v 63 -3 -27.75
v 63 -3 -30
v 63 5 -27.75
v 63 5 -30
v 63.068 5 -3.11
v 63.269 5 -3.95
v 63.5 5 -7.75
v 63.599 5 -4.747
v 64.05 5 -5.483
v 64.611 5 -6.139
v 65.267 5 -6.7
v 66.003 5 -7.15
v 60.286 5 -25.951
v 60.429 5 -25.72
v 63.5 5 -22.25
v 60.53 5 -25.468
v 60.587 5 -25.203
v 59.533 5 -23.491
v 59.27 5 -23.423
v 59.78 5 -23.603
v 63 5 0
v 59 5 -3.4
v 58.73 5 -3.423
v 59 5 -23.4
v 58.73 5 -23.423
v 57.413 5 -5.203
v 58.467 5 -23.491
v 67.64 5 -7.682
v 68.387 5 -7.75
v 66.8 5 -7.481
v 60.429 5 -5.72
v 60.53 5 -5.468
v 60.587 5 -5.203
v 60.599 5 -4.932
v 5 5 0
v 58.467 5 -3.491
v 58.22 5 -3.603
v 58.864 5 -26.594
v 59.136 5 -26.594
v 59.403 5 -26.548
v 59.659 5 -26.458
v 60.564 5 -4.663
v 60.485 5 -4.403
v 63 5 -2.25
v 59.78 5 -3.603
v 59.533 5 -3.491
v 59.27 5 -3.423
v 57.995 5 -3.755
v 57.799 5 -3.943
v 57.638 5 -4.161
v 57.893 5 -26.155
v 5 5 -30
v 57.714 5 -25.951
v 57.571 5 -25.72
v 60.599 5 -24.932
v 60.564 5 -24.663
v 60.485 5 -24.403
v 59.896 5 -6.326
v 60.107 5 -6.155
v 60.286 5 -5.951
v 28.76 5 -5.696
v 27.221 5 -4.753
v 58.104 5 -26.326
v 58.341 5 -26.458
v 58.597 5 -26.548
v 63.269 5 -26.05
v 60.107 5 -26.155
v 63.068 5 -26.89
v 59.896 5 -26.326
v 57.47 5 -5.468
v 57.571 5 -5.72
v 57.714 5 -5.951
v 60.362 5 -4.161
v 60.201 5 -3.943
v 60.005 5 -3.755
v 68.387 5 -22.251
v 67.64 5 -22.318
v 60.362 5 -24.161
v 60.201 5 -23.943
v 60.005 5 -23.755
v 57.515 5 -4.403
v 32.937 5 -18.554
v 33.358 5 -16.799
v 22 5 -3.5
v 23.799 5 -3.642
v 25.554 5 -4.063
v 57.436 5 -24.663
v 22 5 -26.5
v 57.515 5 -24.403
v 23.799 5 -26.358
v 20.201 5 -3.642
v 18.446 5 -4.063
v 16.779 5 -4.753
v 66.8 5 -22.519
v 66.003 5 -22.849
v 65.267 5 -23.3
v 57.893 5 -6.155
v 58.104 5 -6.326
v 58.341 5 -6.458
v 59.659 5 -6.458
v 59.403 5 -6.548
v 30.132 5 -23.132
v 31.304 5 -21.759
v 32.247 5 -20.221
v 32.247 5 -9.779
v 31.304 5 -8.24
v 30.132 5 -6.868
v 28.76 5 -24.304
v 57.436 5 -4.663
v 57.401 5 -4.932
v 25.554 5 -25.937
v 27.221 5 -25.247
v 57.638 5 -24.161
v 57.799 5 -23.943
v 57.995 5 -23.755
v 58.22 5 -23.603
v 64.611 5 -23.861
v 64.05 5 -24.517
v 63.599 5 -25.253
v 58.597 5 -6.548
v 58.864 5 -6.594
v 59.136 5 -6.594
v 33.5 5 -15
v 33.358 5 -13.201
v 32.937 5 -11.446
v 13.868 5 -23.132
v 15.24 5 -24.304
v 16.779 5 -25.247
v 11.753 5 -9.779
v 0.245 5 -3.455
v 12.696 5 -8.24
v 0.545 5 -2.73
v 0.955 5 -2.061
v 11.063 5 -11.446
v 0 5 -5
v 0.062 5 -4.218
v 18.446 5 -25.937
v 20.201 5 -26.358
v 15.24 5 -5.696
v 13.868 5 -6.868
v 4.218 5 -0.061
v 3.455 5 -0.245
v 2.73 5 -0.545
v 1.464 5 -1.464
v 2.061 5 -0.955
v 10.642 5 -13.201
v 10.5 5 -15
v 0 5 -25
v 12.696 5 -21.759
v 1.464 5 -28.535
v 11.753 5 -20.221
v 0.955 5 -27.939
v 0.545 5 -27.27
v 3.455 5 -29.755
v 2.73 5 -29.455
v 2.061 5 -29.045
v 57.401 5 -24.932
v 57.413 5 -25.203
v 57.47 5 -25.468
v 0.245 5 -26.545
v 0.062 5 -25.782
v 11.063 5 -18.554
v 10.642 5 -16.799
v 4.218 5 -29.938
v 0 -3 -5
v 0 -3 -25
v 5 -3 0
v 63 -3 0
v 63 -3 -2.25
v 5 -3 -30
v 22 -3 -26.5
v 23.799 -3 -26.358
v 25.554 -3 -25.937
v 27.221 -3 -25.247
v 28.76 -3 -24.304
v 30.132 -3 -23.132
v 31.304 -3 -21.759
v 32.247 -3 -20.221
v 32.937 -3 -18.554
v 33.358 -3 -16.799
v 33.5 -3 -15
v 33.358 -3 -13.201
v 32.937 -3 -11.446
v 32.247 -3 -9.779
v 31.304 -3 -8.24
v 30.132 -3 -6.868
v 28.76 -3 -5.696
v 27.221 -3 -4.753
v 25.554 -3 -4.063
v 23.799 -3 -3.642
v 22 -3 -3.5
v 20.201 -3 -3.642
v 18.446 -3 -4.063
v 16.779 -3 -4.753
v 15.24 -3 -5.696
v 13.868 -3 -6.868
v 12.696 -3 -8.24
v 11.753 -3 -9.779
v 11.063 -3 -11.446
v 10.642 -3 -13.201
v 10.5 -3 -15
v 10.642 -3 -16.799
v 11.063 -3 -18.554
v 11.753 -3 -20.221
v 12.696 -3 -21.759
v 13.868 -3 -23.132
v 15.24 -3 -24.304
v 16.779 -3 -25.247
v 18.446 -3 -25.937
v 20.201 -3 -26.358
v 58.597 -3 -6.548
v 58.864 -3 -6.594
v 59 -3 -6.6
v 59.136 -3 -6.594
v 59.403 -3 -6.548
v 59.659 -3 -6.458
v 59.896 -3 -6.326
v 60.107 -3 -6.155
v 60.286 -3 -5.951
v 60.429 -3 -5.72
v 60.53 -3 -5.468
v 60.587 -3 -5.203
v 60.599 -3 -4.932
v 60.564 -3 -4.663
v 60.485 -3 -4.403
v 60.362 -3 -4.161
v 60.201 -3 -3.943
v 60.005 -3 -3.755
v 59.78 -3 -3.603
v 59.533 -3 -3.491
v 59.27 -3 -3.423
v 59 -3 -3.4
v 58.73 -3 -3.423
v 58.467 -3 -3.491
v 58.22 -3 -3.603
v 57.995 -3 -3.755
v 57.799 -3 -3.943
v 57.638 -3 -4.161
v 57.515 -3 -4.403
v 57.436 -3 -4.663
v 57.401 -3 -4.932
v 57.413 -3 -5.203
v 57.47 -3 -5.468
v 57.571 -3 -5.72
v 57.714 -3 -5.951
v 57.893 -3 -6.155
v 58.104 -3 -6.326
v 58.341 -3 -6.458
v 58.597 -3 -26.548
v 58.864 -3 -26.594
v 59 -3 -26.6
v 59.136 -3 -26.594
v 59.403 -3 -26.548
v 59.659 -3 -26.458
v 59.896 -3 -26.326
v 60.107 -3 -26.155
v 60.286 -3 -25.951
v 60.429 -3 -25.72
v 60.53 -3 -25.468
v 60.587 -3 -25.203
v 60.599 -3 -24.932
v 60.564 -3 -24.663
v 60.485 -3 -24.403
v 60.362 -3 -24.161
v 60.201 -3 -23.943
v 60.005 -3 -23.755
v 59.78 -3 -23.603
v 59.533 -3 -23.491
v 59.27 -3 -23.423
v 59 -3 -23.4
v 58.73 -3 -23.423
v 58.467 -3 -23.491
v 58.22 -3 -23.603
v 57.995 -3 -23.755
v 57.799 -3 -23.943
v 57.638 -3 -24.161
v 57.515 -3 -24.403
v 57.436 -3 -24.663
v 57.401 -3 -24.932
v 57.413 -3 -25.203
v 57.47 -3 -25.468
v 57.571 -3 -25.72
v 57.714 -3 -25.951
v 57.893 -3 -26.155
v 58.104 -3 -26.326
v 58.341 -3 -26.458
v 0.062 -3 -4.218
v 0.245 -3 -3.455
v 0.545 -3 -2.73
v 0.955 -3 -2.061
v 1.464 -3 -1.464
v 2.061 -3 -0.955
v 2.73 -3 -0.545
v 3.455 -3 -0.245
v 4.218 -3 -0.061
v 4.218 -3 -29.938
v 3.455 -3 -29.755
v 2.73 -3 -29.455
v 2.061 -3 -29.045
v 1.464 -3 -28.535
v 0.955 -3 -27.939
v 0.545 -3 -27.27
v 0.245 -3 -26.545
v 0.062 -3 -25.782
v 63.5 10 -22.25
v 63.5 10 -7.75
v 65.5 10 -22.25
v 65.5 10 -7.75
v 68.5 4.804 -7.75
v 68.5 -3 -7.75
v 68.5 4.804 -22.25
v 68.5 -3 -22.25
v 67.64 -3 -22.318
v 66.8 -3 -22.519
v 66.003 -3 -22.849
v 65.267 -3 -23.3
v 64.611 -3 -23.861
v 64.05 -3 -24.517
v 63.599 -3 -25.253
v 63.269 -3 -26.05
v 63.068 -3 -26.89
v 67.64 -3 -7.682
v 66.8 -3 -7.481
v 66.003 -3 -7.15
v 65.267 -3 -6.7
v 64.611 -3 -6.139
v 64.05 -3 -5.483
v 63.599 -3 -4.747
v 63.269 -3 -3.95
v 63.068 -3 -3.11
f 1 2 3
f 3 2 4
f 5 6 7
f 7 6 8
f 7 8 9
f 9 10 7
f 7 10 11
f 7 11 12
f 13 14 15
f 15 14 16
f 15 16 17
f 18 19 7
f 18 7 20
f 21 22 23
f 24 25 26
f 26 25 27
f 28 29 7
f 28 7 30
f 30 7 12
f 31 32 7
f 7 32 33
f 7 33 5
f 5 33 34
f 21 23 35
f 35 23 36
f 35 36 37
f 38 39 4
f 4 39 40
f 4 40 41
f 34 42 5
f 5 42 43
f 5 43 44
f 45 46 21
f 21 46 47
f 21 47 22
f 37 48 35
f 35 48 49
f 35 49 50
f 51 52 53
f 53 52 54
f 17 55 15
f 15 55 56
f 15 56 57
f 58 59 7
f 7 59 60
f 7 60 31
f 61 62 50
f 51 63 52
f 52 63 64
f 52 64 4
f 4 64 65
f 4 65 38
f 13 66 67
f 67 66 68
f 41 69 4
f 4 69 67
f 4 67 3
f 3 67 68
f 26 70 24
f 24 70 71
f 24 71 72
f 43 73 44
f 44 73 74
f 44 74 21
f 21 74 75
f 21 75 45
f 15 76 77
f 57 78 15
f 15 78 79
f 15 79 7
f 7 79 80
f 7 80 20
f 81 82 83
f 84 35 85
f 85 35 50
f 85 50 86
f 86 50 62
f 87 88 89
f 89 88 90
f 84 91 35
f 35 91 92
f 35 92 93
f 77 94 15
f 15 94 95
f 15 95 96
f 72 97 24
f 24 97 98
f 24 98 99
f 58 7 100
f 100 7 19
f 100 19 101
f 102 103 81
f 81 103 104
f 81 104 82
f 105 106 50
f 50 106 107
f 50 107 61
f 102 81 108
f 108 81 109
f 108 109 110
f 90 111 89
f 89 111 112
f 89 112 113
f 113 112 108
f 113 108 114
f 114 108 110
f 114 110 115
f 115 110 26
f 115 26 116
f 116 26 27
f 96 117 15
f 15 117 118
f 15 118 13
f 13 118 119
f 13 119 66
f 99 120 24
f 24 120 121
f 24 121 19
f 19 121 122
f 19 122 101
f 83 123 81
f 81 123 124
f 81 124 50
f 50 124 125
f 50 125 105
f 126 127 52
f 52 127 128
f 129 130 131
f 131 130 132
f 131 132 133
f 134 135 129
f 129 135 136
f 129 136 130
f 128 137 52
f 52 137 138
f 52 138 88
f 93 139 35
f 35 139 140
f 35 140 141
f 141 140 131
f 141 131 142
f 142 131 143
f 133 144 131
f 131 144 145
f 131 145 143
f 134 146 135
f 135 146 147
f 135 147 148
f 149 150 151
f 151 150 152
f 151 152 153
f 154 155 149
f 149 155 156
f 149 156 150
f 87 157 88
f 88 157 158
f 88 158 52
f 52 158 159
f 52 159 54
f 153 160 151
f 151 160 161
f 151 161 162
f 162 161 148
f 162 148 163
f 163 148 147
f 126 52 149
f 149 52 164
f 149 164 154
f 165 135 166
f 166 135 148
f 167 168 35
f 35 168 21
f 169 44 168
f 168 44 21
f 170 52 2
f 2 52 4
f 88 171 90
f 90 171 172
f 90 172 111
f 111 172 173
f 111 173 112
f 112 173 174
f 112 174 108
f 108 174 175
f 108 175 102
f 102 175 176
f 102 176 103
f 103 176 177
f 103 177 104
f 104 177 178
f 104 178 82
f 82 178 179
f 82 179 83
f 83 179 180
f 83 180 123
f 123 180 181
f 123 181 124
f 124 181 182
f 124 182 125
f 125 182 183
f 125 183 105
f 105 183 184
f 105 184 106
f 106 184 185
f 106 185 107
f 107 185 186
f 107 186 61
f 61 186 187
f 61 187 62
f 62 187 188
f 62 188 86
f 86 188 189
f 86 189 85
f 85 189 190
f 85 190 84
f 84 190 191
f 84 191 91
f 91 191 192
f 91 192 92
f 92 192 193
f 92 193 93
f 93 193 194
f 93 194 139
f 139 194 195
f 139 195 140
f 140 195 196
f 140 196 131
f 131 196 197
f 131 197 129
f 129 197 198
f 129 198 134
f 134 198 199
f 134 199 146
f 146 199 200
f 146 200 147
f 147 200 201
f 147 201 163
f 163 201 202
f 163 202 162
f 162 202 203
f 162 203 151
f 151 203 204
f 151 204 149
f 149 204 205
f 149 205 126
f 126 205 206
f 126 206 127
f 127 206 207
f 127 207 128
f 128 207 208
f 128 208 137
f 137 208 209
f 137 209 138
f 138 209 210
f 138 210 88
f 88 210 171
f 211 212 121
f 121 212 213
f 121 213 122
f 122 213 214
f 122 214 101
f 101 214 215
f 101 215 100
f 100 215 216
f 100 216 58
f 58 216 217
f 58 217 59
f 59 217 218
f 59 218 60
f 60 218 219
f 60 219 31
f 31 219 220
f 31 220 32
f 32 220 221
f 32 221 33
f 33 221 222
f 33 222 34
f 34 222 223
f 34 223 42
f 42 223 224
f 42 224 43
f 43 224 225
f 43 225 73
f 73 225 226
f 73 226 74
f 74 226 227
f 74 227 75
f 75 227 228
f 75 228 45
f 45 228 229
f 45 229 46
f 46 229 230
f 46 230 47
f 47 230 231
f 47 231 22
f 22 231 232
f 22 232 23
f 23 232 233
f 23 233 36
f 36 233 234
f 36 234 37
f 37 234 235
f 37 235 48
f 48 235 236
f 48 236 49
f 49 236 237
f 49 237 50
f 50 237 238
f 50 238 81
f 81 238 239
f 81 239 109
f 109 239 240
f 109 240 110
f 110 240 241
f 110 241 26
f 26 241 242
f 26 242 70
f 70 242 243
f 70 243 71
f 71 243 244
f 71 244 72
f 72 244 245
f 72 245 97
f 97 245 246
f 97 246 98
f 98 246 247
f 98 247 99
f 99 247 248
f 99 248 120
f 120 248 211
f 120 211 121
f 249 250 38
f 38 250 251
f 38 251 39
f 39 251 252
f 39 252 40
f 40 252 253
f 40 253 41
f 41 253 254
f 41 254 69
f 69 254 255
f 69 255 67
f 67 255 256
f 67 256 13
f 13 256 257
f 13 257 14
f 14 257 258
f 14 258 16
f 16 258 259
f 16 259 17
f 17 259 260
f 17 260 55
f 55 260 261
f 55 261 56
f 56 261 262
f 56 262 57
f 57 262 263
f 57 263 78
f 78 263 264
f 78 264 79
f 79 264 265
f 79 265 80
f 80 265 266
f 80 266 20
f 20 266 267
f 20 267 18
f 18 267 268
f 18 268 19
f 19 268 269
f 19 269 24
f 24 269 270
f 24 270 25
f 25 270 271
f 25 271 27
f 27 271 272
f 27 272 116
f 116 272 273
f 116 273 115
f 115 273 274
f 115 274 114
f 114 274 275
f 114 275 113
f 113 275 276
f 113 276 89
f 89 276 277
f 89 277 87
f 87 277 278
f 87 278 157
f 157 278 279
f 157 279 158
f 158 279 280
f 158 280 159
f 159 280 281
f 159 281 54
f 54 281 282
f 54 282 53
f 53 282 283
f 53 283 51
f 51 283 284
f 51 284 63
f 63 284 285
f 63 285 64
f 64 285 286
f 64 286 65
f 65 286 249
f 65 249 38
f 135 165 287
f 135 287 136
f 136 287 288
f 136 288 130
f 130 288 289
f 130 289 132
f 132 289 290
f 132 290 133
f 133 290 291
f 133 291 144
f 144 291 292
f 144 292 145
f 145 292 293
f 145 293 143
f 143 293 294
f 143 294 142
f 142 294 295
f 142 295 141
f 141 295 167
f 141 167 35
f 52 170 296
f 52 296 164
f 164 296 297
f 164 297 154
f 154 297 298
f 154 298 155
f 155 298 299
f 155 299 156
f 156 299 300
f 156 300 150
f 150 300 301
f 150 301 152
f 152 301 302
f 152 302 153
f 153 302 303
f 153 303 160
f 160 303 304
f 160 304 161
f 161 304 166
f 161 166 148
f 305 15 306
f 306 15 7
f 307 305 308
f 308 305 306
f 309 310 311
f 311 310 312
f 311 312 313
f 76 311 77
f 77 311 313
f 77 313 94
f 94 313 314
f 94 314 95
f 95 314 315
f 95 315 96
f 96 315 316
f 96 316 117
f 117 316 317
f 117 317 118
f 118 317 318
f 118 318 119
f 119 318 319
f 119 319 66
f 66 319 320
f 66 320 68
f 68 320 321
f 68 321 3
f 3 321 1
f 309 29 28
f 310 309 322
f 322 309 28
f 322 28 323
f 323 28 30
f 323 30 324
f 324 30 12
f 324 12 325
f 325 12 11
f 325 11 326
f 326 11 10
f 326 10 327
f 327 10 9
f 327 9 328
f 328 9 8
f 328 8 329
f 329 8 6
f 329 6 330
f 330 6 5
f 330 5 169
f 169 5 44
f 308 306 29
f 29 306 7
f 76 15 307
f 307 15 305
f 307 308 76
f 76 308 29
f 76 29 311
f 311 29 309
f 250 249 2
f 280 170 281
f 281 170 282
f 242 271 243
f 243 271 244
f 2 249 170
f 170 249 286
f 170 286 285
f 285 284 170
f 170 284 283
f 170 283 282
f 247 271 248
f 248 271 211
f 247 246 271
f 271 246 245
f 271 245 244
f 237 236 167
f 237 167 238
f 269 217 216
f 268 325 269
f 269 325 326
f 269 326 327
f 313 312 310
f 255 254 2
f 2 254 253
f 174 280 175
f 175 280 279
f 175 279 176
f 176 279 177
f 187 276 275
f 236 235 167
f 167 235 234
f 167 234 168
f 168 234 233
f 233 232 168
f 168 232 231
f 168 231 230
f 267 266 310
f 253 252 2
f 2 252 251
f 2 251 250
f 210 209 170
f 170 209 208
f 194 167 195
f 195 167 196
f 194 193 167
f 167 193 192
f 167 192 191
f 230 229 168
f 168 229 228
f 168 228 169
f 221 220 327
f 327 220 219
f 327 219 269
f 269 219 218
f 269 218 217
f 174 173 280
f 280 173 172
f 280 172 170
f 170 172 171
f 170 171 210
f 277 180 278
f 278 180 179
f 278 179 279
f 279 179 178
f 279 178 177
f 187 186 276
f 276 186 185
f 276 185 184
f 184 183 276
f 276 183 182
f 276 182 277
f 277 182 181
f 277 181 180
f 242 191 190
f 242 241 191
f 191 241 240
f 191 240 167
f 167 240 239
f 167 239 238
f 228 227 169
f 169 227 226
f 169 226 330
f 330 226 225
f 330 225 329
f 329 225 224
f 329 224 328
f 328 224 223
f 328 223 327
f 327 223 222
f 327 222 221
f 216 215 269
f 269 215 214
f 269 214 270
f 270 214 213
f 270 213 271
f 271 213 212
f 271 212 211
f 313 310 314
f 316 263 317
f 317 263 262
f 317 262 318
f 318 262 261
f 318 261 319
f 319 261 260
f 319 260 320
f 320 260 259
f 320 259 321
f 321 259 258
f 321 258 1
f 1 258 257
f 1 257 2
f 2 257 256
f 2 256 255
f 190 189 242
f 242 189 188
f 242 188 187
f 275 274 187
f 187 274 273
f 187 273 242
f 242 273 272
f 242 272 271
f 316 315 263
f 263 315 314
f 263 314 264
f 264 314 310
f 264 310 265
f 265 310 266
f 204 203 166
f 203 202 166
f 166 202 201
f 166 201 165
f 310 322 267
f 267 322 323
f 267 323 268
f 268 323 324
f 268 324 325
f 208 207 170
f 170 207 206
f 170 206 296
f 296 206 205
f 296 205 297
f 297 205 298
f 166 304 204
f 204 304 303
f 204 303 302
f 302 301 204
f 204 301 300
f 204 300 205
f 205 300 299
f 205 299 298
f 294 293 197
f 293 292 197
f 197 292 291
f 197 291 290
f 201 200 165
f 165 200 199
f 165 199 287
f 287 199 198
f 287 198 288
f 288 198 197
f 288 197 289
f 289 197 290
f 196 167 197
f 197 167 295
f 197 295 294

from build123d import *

# Parameters (mm, degrees)
SKETCH1_W           = 63
SKETCH1_H           = 30
SKETCH1_R           = 11.5
BOSS_EXTRUDE1_DEPTH = 5
SKETCH2_R           = 1.6
CUT_EXTRUDE1_DEPTH  = 70.95712973
FILLET1_R           = 5
SKETCH3_W           = 14.5
SKETCH3_H           = 5
BOSS_EXTRUDE2_DEPTH = 0.5
SKETCH4_W           = 14.5
SKETCH4_H           = 10
BOSS_EXTRUDE3_DEPTH = 5
FILLET2_R           = 5.5
SKETCH5_W           = 3.208712153
SKETCH5_H           = 5
CUT_EXTRUDE2_DEPTH  = 76.447001266
CHAMFER1_SIZE       = 5.196152423
CHAMFER1_SIZE_2     = 3
SKETCH6_R           = 1.6
SKETCH6_R_2         = 11.5
BOSS_EXTRUDE4_DEPTH = 3


with BuildPart() as part:
    # Sketch1 → Boss-Extrude1 (new body)
    with BuildSketch(Plane(origin=(0, 0, 0), x_dir=(1, 0, 0), z_dir=(0, 1, 0))):
        with Locations((31.5, 15)):
            Rectangle(SKETCH1_W, SKETCH1_H)
        with Locations(Location((22, 15, 0), (0, 0, 270))):
            Circle(SKETCH1_R, mode=Mode.SUBTRACT)
    extrude(amount=BOSS_EXTRUDE1_DEPTH)

    # Sketch2 → Cut-Extrude1 (cut, through all)
    with BuildSketch(Plane(origin=(0, 5, 0), x_dir=(1, 0, 0), z_dir=(0, 1, 0))):
        with Locations(Location((59, 25, 0), (0, 0, 270))):
            Circle(SKETCH2_R)
        with Locations(Location((59, 5, 0), (0, 0, 270))):
            Circle(SKETCH2_R)
    extrude(amount=-CUT_EXTRUDE1_DEPTH, mode=Mode.SUBTRACT)

    # Fillet1
    fillet1_edges = [part.edges().sort_by_distance(p)[0] for p in [
        (0, 2.5, -30),
        (0, 2.5, 0),
    ]]
    fillet(fillet1_edges, radius=FILLET1_R)

    # Sketch3 → Boss-Extrude2 (add)
    with BuildSketch(Plane(origin=(63, 0, 0), x_dir=(0, 0, -1), z_dir=(1, 0, 0))):
        with Locations((15, 2.5)):
            Rectangle(SKETCH3_W, SKETCH3_H)
    extrude(amount=BOSS_EXTRUDE2_DEPTH)

    # Sketch4 → Boss-Extrude3 (add)
    with BuildSketch(Plane(origin=(63.5, 0, 0), x_dir=(0, 0, -1), z_dir=(1, 0, 0))):
        with Locations((15, 5)):
            Rectangle(SKETCH4_W, SKETCH4_H)
    extrude(amount=BOSS_EXTRUDE3_DEPTH)

    # Fillet2
    # the kernel refuses this fillet: 5.5 mm, written as the material it adds along each edge
    with BuildSketch(Plane(origin=(63, 18.75, -7.75), x_dir=(1, 0, 0), z_dir=(0, -1, 0))) as fillet2_piece_1_section:
        with BuildLine():
            CenterArc((FILLET2_R, FILLET2_R), FILLET2_R, 180, 90)
            Line((0, FILLET2_R), (0, 0))
            Line((0, 0), (FILLET2_R, 0))
        make_face()
    fillet2_piece_1 = extrude(amount=18.75, mode=Mode.PRIVATE)
    fillet2_piece_1 = split(fillet2_piece_1, bisect_by=Plane(origin=(64.81097146, 5, -6.96855226), z_dir=(0, 1, 0)), keep=Keep.TOP, mode=Mode.PRIVATE)
    fillet2_piece_1 = split(fillet2_piece_1, bisect_by=Plane(origin=(64.81097146, 10, -6.96855226), z_dir=(0, -1, 0)), keep=Keep.TOP, mode=Mode.PRIVATE)
    fillet2_piece_1 = split(fillet2_piece_1, bisect_by=Plane(origin=(63.5, 7.5, -6.96855226), z_dir=(1, 0, 0)), keep=Keep.TOP, mode=Mode.PRIVATE)
    add(fillet2_piece_1)
    with BuildSketch(Plane(origin=(63, 5, -7.75), x_dir=(1, 0, 0), z_dir=(0, -1, 0))) as fillet2_piece_2_section:
        with BuildLine():
            CenterArc((FILLET2_R, FILLET2_R), FILLET2_R, 180, 90)
            Line((0, FILLET2_R), (0, 0))
            Line((0, 0), (FILLET2_R, 0))
        make_face()
    fillet2_piece_2 = extrude(amount=5, mode=Mode.PRIVATE)
    fillet2_piece_2 = split(fillet2_piece_2, bisect_by=Plane(origin=(63.5, 2.5, -6.96855226), z_dir=(1, 0, 0)), keep=Keep.TOP, mode=Mode.PRIVATE)
    add(fillet2_piece_2)
    with BuildSketch(Plane(origin=(63, 5, -7.75), x_dir=(1, 0, 0), z_dir=(0, -1, 0))) as fillet2_piece_3_section:
        with BuildLine():
            CenterArc((FILLET2_R, FILLET2_R), FILLET2_R, 180, 90)
            Line((0, FILLET2_R), (0, 0))
            Line((0, 0), (FILLET2_R, 0))
        make_face()
    fillet2_piece_3 = extrude(amount=5, mode=Mode.PRIVATE)
    fillet2_piece_3 = split(fillet2_piece_3, bisect_by=Plane(origin=(63.5, 2.5, -5.619274201), z_dir=(-1, 0, 0)), keep=Keep.TOP, mode=Mode.PRIVATE)
    add(fillet2_piece_3)
    with BuildSketch(Plane(origin=(63, 0, -22.25), x_dir=(0, 0, -1), z_dir=(0, 1, 0))) as fillet2_piece_4_section:
        with BuildLine():
            CenterArc((FILLET2_R, -FILLET2_R), FILLET2_R, 90, 90)
            Line((0, -FILLET2_R), (0, 0))
            Line((0, 0), (FILLET2_R, 0))
        make_face()
    fillet2_piece_4 = extrude(amount=5, mode=Mode.PRIVATE)
    fillet2_piece_4 = split(fillet2_piece_4, bisect_by=Plane(origin=(63.5, 2.5, -24.380725799), z_dir=(-1, 0, 0)), keep=Keep.TOP, mode=Mode.PRIVATE)
    add(fillet2_piece_4)
    with BuildSketch(Plane(origin=(63, 0, -22.25), x_dir=(0, 0, -1), z_dir=(0, 1, 0))) as fillet2_piece_5_section:
        with BuildLine():
            CenterArc((FILLET2_R, -FILLET2_R), FILLET2_R, 90, 90)
            Line((0, -FILLET2_R), (0, 0))
            Line((0, 0), (FILLET2_R, 0))
        make_face()
    fillet2_piece_5 = extrude(amount=5, mode=Mode.PRIVATE)
    fillet2_piece_5 = split(fillet2_piece_5, bisect_by=Plane(origin=(63.5, 2.5, -23.03144774), z_dir=(1, 0, 0)), keep=Keep.TOP, mode=Mode.PRIVATE)
    add(fillet2_piece_5)
    with BuildSketch(Plane(origin=(63, 0, -22.25), x_dir=(0, 0, -1), z_dir=(0, 1, 0))) as fillet2_piece_6_section:
        with BuildLine():
            CenterArc((FILLET2_R, -FILLET2_R), FILLET2_R, 90, 90)
            Line((0, -FILLET2_R), (0, 0))
            Line((0, 0), (FILLET2_R, 0))
        make_face()
    fillet2_piece_6 = extrude(amount=18.75, mode=Mode.PRIVATE)
    fillet2_piece_6 = split(fillet2_piece_6, bisect_by=Plane(origin=(64.81097146, 5, -23.03144774), z_dir=(0, 1, 0)), keep=Keep.TOP, mode=Mode.PRIVATE)
    fillet2_piece_6 = split(fillet2_piece_6, bisect_by=Plane(origin=(64.81097146, 10, -23.03144774), z_dir=(0, -1, 0)), keep=Keep.TOP, mode=Mode.PRIVATE)
    fillet2_piece_6 = split(fillet2_piece_6, bisect_by=Plane(origin=(63.5, 7.5, -23.03144774), z_dir=(1, 0, 0)), keep=Keep.TOP, mode=Mode.PRIVATE)
    add(fillet2_piece_6)

    # Sketch5 → Cut-Extrude2 (cut, through all)
    with BuildSketch(Plane(origin=(68.5, 0, 0), x_dir=(0, 0, -1), z_dir=(1, 0, 0))):
        with Locations((6.145643924, 7.5)):
            Rectangle(SKETCH5_W, SKETCH5_H)
        with Locations((23.854356077, 7.5)):
            Rectangle(SKETCH5_W, SKETCH5_H)
    extrude(amount=-CUT_EXTRUDE2_DEPTH, mode=Mode.SUBTRACT)

    # Chamfer1
    # the kernel refuses this chamfer: 5.196152423, 3 mm, written as the material it takes off along each edge
    with BuildSketch(Plane(origin=(68.5, 10, -35.692891912), x_dir=(0.01932676561270102, -0.9998132206222079, 0), z_dir=(0, 0, 1))) as chamfer1_piece_1:
        Polygon((CHAMFER1_SIZE * 0.999813220566, -CHAMFER1_SIZE * 0.0193267656116), (-CHAMFER1_SIZE_2 * 0.0193267656127, -CHAMFER1_SIZE_2 * 0.999813220622), (0, 0), align=None)
    extrude(amount=41.385783824, mode=Mode.SUBTRACT)

    # Sketch6 → Boss-Extrude4 (add)
    with BuildSketch(Plane.XZ):
        with BuildLine():
            Line((63, -2.25), (63, 0))
            Line((63, 0), (5, 0))
            ThreePointArc((5, 0), (1.464466094, -1.464466094), (0, -5))
            Line((0, -5), (0, -25))
            ThreePointArc((0, -25), (1.464466094, -28.535533906), (5, -30))
            Line((5, -30), (63, -30))
            Line((63, -30), (63, -27.75))
            ThreePointArc((63, -27.75), (64.610912703, -23.860912703), (68.5, -22.25))
            Line((68.5, -22.25), (68.5, -7.75))
            ThreePointArc((68.5, -7.75), (64.610912703, -6.139087297), (63, -2.25))
        make_face()
        with Locations(Location((59, -5, 0), (0, 0, 90))):
            Circle(SKETCH6_R, mode=Mode.SUBTRACT)
        with Locations(Location((22, -15, 0), (0, 0, 270))):
            Circle(SKETCH6_R_2, mode=Mode.SUBTRACT)
        with Locations(Location((59, -25, 0), (0, 0, 90))):
            Circle(SKETCH6_R, mode=Mode.SUBTRACT)
    extrude(amount=BOSS_EXTRUDE4_DEPTH)


solid = part.part
